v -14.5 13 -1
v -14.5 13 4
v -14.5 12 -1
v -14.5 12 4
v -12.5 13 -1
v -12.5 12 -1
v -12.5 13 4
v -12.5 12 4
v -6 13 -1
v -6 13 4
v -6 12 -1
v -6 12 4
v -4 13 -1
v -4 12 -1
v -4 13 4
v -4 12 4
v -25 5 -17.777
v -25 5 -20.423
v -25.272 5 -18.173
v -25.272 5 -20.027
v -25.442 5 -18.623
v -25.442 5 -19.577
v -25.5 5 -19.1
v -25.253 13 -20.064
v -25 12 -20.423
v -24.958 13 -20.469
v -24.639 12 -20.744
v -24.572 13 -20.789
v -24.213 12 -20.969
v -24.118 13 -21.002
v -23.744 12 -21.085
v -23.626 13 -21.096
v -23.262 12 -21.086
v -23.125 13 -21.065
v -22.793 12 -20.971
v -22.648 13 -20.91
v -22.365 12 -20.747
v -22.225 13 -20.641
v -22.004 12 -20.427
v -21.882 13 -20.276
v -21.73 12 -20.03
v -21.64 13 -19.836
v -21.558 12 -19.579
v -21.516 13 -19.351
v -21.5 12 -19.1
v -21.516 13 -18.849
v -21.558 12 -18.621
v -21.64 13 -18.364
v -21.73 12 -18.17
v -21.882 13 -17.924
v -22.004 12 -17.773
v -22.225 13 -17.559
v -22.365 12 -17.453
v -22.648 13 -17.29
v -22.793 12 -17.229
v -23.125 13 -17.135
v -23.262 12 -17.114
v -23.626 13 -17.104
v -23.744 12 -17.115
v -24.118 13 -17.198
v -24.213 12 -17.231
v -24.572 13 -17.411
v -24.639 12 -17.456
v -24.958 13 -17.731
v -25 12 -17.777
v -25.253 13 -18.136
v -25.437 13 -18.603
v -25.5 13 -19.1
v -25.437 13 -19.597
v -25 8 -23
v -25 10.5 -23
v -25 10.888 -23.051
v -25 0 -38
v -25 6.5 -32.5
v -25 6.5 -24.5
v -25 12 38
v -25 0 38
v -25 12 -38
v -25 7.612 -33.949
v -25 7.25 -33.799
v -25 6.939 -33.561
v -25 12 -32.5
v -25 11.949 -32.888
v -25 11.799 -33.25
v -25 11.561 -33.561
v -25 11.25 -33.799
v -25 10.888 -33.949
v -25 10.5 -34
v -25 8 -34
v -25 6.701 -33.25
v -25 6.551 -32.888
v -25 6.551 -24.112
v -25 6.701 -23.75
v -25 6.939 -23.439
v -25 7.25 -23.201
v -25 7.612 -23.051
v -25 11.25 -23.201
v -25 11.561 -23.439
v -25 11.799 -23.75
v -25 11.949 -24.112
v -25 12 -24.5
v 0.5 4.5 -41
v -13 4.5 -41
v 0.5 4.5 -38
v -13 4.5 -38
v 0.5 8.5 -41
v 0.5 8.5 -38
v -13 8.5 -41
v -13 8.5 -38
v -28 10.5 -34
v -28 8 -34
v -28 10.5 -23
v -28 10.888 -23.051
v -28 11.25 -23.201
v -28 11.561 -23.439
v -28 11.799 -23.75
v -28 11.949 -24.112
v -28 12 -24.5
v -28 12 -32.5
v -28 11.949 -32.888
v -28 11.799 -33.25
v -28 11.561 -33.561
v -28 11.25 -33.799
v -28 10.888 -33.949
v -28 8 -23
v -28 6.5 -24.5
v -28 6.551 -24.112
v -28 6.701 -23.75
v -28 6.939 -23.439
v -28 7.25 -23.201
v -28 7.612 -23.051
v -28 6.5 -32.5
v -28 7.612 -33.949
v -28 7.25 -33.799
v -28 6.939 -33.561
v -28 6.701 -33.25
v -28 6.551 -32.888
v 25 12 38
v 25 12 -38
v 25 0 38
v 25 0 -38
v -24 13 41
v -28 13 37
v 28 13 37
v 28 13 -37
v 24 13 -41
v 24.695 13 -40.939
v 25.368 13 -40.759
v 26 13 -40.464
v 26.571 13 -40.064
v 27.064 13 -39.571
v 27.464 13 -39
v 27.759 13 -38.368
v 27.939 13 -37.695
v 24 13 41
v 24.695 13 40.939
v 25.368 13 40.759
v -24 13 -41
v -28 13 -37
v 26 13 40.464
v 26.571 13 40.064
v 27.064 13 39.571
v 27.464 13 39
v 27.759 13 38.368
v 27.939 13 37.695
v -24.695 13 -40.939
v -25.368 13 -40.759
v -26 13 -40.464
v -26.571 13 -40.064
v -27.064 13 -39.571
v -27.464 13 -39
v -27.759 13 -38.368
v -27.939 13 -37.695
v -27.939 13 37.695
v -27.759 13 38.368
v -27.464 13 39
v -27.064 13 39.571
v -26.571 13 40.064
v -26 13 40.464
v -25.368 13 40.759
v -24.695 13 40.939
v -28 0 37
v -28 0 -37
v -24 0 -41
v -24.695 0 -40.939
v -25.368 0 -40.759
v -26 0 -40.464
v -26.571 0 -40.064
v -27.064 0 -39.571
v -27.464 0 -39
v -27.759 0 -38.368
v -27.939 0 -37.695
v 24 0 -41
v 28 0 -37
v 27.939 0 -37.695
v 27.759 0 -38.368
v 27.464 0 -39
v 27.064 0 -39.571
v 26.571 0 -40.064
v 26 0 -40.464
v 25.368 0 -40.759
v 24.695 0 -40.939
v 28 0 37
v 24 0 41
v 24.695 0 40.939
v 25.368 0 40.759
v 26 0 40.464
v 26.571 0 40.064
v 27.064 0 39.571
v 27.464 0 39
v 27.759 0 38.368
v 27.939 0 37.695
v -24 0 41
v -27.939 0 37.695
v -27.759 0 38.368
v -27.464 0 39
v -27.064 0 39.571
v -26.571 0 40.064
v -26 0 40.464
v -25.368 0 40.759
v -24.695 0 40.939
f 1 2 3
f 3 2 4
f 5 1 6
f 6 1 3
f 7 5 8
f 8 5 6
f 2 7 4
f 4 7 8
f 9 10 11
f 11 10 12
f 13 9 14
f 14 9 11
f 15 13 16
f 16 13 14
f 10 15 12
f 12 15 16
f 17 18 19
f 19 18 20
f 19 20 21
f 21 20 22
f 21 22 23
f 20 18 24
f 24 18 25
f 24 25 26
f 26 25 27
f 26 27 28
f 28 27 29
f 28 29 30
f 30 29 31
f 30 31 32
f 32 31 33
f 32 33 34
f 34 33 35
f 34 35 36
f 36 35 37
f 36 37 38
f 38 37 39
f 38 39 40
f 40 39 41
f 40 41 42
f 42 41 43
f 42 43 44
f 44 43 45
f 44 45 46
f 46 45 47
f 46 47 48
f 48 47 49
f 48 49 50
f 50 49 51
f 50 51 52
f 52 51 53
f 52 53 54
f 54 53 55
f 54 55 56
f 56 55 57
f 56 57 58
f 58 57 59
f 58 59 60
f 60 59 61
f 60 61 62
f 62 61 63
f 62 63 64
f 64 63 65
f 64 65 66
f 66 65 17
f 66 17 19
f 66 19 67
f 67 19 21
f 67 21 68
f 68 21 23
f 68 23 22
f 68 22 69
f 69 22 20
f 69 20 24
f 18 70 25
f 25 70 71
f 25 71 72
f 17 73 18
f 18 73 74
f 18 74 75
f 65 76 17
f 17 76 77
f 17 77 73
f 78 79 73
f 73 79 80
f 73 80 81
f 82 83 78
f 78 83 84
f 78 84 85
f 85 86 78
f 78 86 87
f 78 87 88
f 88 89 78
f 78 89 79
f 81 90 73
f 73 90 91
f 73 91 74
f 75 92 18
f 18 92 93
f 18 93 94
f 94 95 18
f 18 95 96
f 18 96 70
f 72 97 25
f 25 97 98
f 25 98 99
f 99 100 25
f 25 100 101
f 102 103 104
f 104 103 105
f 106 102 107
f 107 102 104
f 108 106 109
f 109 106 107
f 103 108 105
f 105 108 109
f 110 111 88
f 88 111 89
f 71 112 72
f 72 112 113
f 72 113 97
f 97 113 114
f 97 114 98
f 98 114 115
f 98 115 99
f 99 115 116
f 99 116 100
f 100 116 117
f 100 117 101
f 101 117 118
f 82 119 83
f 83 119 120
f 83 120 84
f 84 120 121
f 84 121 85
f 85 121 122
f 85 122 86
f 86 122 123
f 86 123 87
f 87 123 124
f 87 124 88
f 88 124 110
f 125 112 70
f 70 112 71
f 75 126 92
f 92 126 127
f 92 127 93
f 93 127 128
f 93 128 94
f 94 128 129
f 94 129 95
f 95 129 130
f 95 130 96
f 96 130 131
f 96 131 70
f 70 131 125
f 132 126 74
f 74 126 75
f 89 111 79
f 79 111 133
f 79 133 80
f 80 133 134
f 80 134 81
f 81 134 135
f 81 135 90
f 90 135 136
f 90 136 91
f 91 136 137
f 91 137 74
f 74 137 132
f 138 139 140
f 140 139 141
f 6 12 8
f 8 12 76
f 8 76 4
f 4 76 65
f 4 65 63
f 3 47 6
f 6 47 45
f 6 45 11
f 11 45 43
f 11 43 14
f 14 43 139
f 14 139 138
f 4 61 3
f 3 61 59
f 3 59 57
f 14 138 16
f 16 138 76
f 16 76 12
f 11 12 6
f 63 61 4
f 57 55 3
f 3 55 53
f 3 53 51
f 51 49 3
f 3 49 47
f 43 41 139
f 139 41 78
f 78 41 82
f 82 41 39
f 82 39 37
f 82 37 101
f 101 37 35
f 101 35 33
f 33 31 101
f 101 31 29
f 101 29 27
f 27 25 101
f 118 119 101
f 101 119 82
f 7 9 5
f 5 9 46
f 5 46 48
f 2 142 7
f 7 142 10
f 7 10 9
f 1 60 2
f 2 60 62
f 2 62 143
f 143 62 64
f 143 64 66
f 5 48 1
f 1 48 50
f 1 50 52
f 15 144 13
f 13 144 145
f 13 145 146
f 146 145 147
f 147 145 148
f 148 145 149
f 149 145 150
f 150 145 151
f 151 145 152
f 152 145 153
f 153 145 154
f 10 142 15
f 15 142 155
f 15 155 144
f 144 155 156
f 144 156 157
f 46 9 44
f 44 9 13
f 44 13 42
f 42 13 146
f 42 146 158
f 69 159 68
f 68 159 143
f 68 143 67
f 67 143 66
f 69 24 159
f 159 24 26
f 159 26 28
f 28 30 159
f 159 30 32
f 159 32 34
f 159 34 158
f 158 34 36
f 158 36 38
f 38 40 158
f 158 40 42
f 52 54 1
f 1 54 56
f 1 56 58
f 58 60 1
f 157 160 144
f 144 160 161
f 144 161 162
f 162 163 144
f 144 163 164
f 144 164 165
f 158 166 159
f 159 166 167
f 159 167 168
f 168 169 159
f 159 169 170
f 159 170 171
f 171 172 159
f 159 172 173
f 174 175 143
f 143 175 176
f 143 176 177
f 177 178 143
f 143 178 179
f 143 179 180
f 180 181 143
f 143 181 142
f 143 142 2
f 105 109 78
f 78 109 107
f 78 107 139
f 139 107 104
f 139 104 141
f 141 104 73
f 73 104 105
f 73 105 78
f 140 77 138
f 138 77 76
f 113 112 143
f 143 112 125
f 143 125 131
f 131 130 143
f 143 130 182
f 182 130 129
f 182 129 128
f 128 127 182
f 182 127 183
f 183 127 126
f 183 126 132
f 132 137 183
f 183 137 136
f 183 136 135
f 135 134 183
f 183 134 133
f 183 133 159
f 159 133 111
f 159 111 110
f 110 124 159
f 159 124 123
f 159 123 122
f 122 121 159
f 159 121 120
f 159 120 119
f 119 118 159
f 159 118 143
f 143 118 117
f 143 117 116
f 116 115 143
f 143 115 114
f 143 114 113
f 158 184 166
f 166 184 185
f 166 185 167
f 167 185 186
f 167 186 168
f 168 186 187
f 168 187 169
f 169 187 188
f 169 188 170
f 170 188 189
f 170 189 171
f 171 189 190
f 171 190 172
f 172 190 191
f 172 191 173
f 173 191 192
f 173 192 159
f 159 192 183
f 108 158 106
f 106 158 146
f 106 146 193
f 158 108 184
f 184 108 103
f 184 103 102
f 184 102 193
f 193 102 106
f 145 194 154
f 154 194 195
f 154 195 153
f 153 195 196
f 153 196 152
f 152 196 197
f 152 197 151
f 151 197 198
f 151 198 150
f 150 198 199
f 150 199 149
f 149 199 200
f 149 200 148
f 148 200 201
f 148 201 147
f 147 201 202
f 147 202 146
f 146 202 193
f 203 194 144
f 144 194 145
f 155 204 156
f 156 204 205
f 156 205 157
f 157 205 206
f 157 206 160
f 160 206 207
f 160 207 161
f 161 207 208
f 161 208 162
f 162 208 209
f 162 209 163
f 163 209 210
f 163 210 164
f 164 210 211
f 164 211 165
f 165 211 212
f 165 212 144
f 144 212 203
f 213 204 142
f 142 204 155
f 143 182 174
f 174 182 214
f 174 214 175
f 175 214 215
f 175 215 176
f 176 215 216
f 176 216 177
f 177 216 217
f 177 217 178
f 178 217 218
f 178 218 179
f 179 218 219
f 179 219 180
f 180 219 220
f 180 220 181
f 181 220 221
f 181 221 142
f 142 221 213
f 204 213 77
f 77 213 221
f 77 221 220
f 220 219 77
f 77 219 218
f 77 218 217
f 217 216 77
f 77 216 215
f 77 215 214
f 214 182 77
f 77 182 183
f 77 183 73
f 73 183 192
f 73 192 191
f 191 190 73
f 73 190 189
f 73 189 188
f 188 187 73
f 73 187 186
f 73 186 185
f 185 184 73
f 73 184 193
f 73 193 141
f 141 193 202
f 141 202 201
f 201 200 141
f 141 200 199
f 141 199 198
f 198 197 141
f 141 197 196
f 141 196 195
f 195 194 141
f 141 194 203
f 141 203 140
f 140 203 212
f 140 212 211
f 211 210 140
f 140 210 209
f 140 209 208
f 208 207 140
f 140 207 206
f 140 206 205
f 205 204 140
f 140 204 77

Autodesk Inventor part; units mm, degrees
ref_plane "YZ Plane" through (0, 0, 0) normal (1, 0, 0) x (0, 1, 0)
ref_plane "XZ Plane" through (0, 0, 0) normal (0, 1, 0) x (-1, 0, 0)
ref_plane "XY Plane" through (0, 0, 0) normal (0, 0, 1) x (1, 0, 0)
sketch "Boceto1" plane through (0, 0, 0) normal (0, 1, 0) x (-1, 0, 0)
  line L0 (-25, 38) -> (25, 38)
  line L1 (25, 38) -> (25, -38)
  line L2 (25, -38) -> (-25, -38)
  line L3 (-25, -38) -> (-25, 38)
  line L4 (-25, 38) -> (25, -38) construction
  line L5 (25, 38) -> (-25, -38) construction
  line L6 (28, -37) -> (28, 37)
  line L7 (24, 41) -> (-24, 41)
  line L8 (-28, 37) -> (-28, -37)
  line L9 (-24, -41) -> (24, -41)
  arc A0 (28, 37) -> (24, 41) centre (24, 37) ccw
  arc A1 (24, -41) -> (28, -37) centre (24, -37) ccw
  arc A2 (-28, -37) -> (-24, -41) centre (-24, -37) ccw
  arc A3 (-24, 41) -> (-28, 37) centre (-24, 37) ccw
  point P0 (0, 0)
  dimension "d0" = 50
  dimension "d1" = 76
  dimension "d2" = 3
  dimension "d3" = 4
extrude "Extrusión1" add sketch "Boceto1" along normal blind 12
sketch "Boceto2" plane through (0, 12, 0) normal (0, 1, 0) x (1, 0, 0)
  arc A0 (-28, -37) -> (-24, -41) centre (-24, -37) ccw projected
  line L0 (-24, -41) -> (24, -41) projected
  arc A1 (24, -41) -> (28, -37) centre (24, -37) ccw projected
  line L1 (28, -37) -> (28, 37) projected
  arc A2 (28, 37) -> (24, 41) centre (24, 37) ccw projected
  line L2 (24, 41) -> (-24, 41) projected
  arc A3 (-24, 41) -> (-28, 37) centre (-24, 37) ccw projected
  line L3 (-28, 37) -> (-28, -37) projected
  line L4 (25, -38) -> (-25, -38) projected
  line L5 (-25, -38) -> (-25, 38) projected
  line L6 (-25, 38) -> (25, 38) projected
  line L7 (25, 38) -> (25, -38) projected
  point P0 (0, 0)
extrude "Extrusión2" add sketch "Boceto2" along normal blind 1 contours L3 A3 L2 A2 L1 A1 L0 A0 | L4 L5 L6 L7
sketch "Boceto3" plane through (25, 0, -38) normal (-1, 0, 0) x (0, 0, 1)
  line L0 (0, 0) -> (76, 0) projected
  line L1 (76, 0) -> (76, 12) projected
  line L2 (0, 12) -> (76, 12) projected
  line L3 (0, 0) -> (0, 12) projected
  line L4 (5.5, 12) -> (13.5, 12)
  line L5 (15, 10.5) -> (15, 8)
  line L6 (13.5, 6.5) -> (5.5, 6.5)
  line L7 (4, 8) -> (4, 10.5)
  arc A0 (13.5, 6.5) -> (15, 8) centre (13.5, 8) ccw
  arc A1 (4, 8) -> (5.5, 6.5) centre (5.5, 8) ccw
  arc A2 (15, 10.5) -> (13.5, 12) centre (13.5, 10.5) ccw
  arc A3 (5.5, 12) -> (4, 10.5) centre (5.5, 10.5) ccw
  point P0 (38, 0)
  point P1 (15, 12)
  point P2 (15, 6.5)
  point P3 (4, 6.5)
  point P4 (4, 12)
  point P5 (13.5, 12)
  point P6 (5.5, 12)
  dimension "d8" = 15
  dimension "d9" = 5.5
  dimension "d10" = 11
  dimension "d11" = 90
  dimension "d12" = 5.5
  dimension "d13" = 90
  dimension "d14" = 1.5
  dimension "d15" = 1.5
extrude "Extrusión3" cut sketch "Boceto3" along normal through all contours L2 A2 L5 A0 L6 A1 L7 A3
sketch "Boceto4" plane through (-25, 0, -38) normal (0, 0, 1) x (1, 0, 0)
  line L0 (0, 0) -> (50, 0) projected
  line L1 (50, 0) -> (50, 12) projected
  line L2 (0, 12) -> (50, 12) projected
  line L3 (0, 0) -> (0, 12) projected
  line L4 (0, 12) -> (25.5, 12)
  line L5 (25.5, 12) -> (25.5, 4.5)
  line L6 (25.5, 4.5) -> (12, 4.5)
  line L7 (25.5, 12) -> (25.5, 8.5)
  line L8 (25.5, 8.5) -> (12, 8.5)
  line L9 (12, 8.5) -> (12, 4.5)
  point P0 (25, 0)
  dimension "d18" = 25.5
  dimension "d19" = 7.5
  dimension "d20" = 13.5
  dimension "d21" = 3.5
extrude "Extrusión4" cut sketch "Boceto4" against normal blind 10 contours L5 L6 L9 L8
sketch "Boceto5" plane through (0, 12, 0) normal (0, -1, 0) x (1, 0, 0)
  line L0 (-25, -32.5) -> (-25, -38) projected
  line L1 (-25, -38) -> (25, -38) projected
  line L2 (25, -38) -> (25, 38) projected
  line L3 (25, 38) -> (-25, 38) projected
  line L4 (-25, 38) -> (-25, -24.5) projected
  line L5 (-25, -24.5) -> (-28, -24.5) projected
  line L6 (-28, -32.5) -> (-28, -24.5) projected
  line L7 (-25, -32.5) -> (-28, -32.5) projected
  line L8 (-25, -23) -> (-25, -24.5) projected
  line L9 (-25, 38) -> (-25, -24.5) projected
  line L10 (-25, 38) -> (-25, -38) projected
  line L11 (-25, -32.5) -> (-25, -38) projected
  line L12 (-25, -32.5) -> (-25, -34) projected
  line L13 (-25, -34) -> (-25, -32.5) projected
  line L14 (-25, -32.5) -> (-25, -24.5) projected
  line L15 (-25, -24.5) -> (-25, -23) projected
  line L16 (-25, -23) -> (-25, -19.1)
  line L17 (-25, -23) -> (-21.1, -23) construction
  line L18 (-25, -19.1) -> (-23.5, -19.1)
  circle A0 centre (-23.5, -19.1) radius 2
  point P0 (0, 0)
  dimension "d24" = 3.9
  dimension "d25" = 90
  dimension "d26" = 1.5
  dimension "d27" = 4
extrude "Extrusión5" cut sketch "Boceto5" along normal mid plane 14 contours A0 L4 | L4 A0
sketch "Boceto6" plane through (0, 12, 0) normal (0, -1, 0) x (1, 0, 0)
  arc A0 (-25, -20.4229) -> (-25, -17.7771) centre (-23.5, -19.1) ccw projected
  line L0 (-25, -20.4229) -> (-25, -24.5) projected
  line L1 (-25, -24.5) -> (-28, -24.5) projected
  line L2 (-28, -32.5) -> (-28, -24.5) projected
  line L3 (-25, -32.5) -> (-28, -32.5) projected
  line L4 (-25, -32.5) -> (-25, -38) projected
  line L5 (-25, -38) -> (25, -38) projected
  line L6 (25, -38) -> (25, 38) projected
  line L7 (25, 38) -> (-25, 38) projected
  line L8 (-25, 38) -> (-25, -17.7771) projected
  line L9 (-6, 4) -> (-4, 4)
  line L10 (-4, 4) -> (-4, -1)
  line L11 (-4, -1) -> (-6, -1)
  line L12 (-6, -1) -> (-6, 4)
  line L13 (-6, 4) -> (-4, -1) construction
  line L14 (-4, 4) -> (-6, -1) construction
  line L15 (-14.5, 4) -> (-12.5, 4)
  line L16 (-12.5, 4) -> (-12.5, -1)
  line L17 (-12.5, -1) -> (-14.5, -1)
  line L18 (-14.5, -1) -> (-14.5, 4)
  line L19 (-14.5, 4) -> (-12.5, -1) construction
  line L20 (-12.5, 4) -> (-14.5, -1) construction
  point P0 (0, 0)
  point P1 (-13.5, 1.5)
  point P2 (-5, 1.5)
  dimension "d30" = 11.5
  dimension "d31" = 39.5
  dimension "d32" = 8.5
  dimension "d33" = 2
  dimension "d34" = 5
  dimension "d35" = 2
  dimension "d36" = 5
extrude "Extrusión6" cut sketch "Boceto6" against normal blind 14 contours L9 L10 L11 L12 | L15 L16 L17 L18
properties part number "Pieza1_3DPrint"
